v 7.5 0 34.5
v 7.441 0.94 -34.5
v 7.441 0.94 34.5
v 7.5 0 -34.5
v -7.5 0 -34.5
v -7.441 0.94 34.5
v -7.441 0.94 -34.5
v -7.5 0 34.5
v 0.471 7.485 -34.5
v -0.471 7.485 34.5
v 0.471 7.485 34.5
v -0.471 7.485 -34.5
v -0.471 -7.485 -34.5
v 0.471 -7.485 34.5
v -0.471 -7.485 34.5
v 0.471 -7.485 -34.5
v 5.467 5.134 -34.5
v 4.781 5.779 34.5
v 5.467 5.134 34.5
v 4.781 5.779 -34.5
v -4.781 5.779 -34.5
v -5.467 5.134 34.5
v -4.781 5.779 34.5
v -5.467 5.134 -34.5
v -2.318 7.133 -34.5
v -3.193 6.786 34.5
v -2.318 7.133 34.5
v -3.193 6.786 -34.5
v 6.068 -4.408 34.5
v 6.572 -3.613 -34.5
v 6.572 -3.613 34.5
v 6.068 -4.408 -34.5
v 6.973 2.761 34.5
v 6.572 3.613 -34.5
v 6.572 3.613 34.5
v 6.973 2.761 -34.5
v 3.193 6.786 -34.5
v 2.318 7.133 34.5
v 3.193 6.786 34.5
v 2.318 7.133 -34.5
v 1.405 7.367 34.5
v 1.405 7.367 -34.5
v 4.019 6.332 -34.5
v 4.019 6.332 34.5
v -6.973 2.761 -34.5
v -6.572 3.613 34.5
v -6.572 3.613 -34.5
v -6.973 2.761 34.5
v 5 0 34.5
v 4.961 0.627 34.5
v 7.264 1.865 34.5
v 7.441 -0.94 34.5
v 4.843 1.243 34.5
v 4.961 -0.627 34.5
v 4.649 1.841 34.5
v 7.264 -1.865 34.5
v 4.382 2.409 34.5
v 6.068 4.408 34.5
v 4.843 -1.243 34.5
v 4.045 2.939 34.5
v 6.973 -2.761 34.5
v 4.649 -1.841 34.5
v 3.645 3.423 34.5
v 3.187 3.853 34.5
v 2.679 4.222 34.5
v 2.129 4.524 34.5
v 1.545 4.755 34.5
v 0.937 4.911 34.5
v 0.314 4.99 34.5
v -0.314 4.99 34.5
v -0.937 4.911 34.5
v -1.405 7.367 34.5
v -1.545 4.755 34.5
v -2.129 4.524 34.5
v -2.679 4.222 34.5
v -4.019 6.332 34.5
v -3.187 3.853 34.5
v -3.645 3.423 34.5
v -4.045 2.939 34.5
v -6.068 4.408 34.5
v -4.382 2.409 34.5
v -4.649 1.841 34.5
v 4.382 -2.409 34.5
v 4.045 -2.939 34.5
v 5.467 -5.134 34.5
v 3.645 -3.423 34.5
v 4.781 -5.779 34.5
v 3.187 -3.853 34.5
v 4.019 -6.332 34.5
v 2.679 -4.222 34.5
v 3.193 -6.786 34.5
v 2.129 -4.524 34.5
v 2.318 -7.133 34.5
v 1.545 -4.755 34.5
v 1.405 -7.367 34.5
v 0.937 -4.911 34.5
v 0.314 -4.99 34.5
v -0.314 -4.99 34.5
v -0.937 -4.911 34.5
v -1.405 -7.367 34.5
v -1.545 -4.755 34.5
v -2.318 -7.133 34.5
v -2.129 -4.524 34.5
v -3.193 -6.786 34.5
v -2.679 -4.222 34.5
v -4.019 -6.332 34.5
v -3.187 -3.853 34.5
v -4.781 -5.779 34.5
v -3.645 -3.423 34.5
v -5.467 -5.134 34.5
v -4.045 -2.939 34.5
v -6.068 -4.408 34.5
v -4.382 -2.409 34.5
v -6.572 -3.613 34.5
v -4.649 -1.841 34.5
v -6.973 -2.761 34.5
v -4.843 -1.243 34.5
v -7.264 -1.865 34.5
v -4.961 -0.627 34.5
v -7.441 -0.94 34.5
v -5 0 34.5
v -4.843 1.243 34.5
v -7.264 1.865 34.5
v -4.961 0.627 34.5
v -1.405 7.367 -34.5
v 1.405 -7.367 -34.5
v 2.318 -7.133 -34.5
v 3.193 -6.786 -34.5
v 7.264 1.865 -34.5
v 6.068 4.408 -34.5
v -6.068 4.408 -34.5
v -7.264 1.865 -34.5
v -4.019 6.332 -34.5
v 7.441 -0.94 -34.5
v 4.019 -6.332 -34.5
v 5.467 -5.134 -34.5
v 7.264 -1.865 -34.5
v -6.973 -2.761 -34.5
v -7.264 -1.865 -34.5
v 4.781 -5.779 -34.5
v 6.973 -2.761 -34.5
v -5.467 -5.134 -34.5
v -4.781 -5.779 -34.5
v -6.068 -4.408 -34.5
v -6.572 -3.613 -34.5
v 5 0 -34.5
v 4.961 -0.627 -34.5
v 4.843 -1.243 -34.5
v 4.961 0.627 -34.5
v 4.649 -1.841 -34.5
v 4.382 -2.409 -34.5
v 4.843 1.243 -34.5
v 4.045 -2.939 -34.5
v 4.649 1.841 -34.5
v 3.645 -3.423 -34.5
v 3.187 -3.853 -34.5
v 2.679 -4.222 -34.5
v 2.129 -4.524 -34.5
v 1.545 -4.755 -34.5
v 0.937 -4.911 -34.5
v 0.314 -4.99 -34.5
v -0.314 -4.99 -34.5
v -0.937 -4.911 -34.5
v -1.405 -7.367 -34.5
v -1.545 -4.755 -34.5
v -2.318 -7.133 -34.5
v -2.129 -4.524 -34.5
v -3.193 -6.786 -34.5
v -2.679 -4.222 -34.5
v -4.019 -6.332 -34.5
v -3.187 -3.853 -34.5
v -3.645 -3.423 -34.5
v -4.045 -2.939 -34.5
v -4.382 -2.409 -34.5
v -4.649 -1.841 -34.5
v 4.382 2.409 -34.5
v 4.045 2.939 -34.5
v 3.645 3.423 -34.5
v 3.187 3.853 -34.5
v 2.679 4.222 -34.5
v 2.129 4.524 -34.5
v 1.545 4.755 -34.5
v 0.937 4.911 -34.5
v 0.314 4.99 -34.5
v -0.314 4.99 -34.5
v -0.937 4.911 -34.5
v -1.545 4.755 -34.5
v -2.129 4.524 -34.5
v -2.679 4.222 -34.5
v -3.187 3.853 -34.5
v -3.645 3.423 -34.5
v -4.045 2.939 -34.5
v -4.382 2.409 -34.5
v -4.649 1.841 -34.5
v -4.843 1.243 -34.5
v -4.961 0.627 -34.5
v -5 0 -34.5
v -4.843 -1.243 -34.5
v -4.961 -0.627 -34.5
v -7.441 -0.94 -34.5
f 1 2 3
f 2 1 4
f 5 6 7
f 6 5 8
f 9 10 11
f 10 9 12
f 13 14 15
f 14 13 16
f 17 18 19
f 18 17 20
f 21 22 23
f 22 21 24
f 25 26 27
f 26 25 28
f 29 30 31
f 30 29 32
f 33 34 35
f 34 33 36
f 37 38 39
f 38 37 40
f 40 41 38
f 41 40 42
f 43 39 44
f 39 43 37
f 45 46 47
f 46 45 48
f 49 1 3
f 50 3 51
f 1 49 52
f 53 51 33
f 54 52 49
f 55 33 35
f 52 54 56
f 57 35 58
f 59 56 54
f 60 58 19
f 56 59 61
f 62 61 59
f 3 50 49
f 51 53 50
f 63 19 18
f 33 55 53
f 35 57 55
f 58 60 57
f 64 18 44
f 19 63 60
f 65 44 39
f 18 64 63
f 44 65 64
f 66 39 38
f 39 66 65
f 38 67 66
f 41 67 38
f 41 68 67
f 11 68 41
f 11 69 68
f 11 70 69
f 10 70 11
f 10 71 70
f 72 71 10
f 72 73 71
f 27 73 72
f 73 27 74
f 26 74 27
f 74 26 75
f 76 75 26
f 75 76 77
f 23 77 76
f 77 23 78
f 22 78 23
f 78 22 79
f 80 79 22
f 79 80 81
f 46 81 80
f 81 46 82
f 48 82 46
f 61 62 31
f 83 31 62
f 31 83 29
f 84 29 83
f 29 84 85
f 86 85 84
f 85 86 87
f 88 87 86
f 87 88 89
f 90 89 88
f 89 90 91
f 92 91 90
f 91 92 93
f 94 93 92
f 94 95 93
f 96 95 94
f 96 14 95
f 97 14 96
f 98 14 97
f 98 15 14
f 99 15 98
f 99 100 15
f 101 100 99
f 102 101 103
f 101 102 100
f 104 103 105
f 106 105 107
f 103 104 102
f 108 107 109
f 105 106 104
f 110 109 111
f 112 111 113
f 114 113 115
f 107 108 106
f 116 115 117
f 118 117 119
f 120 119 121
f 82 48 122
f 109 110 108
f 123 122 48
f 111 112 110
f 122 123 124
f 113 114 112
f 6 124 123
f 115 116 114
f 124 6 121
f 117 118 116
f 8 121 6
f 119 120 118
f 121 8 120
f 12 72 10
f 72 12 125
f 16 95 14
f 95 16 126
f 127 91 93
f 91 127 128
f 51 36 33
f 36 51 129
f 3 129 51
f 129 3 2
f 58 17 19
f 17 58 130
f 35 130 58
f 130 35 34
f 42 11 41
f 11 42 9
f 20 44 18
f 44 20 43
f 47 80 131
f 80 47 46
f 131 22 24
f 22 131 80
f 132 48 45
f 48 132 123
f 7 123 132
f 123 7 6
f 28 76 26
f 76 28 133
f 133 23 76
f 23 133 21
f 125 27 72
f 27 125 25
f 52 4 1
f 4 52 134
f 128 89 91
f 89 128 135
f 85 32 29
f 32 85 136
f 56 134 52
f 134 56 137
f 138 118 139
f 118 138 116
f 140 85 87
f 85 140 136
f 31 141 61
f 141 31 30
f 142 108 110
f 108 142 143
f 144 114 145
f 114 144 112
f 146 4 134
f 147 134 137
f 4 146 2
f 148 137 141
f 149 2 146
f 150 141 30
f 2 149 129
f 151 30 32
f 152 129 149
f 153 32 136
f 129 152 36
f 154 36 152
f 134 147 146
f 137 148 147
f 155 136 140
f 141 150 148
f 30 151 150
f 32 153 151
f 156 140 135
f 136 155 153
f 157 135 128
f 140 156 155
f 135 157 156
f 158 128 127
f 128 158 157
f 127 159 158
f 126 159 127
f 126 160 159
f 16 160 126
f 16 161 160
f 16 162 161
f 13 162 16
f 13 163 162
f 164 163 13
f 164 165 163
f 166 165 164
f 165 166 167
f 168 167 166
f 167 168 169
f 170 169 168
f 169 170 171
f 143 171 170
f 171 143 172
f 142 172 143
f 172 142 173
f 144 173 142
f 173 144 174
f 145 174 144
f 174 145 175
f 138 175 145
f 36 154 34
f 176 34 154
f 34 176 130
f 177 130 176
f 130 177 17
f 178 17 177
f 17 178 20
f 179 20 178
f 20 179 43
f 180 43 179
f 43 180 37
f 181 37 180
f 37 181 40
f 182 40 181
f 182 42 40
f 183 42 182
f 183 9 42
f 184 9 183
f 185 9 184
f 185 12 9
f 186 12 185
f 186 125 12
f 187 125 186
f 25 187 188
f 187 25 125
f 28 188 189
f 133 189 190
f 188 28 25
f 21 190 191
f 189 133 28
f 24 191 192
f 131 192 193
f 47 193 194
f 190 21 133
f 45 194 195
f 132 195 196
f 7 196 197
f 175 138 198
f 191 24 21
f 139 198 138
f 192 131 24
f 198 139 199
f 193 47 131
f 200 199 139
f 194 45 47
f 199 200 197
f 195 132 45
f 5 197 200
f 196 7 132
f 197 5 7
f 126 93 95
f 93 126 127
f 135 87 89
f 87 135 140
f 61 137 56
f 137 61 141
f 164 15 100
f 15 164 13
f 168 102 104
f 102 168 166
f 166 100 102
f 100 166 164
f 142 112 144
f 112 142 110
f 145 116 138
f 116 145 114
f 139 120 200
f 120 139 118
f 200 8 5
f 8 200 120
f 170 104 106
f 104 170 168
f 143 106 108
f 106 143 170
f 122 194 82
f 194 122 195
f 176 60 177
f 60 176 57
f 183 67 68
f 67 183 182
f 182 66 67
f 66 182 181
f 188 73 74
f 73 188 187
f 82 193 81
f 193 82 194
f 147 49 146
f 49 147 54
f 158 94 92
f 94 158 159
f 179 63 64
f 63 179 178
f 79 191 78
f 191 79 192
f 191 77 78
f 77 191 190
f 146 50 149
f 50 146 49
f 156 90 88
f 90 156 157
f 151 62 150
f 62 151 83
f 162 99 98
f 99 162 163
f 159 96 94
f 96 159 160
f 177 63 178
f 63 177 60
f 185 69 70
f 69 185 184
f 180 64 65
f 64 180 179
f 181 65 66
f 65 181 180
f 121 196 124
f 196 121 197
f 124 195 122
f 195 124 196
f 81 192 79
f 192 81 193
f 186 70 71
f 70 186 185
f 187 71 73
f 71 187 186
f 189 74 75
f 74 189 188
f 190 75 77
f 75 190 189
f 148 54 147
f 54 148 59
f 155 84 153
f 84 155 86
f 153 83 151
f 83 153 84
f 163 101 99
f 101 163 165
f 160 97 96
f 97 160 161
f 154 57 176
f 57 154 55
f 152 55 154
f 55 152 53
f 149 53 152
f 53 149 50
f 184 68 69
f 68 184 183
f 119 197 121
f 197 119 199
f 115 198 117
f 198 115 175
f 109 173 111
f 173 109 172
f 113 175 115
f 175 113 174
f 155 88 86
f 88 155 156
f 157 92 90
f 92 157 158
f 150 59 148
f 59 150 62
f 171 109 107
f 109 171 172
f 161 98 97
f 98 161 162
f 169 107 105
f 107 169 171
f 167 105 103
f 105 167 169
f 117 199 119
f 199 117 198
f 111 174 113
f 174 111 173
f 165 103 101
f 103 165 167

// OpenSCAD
$fn = 50;


difference() {
	union() {
		translate(v = [0, 0, -34.5000000000]) {
			cylinder(h = 69, r = 7.5000000000);
		}
	}
	union() {
		translate(v = [0, 0, -100.0000000000]) {
			cylinder(h = 200, r = 5.0000000000);
		}
	}
}
